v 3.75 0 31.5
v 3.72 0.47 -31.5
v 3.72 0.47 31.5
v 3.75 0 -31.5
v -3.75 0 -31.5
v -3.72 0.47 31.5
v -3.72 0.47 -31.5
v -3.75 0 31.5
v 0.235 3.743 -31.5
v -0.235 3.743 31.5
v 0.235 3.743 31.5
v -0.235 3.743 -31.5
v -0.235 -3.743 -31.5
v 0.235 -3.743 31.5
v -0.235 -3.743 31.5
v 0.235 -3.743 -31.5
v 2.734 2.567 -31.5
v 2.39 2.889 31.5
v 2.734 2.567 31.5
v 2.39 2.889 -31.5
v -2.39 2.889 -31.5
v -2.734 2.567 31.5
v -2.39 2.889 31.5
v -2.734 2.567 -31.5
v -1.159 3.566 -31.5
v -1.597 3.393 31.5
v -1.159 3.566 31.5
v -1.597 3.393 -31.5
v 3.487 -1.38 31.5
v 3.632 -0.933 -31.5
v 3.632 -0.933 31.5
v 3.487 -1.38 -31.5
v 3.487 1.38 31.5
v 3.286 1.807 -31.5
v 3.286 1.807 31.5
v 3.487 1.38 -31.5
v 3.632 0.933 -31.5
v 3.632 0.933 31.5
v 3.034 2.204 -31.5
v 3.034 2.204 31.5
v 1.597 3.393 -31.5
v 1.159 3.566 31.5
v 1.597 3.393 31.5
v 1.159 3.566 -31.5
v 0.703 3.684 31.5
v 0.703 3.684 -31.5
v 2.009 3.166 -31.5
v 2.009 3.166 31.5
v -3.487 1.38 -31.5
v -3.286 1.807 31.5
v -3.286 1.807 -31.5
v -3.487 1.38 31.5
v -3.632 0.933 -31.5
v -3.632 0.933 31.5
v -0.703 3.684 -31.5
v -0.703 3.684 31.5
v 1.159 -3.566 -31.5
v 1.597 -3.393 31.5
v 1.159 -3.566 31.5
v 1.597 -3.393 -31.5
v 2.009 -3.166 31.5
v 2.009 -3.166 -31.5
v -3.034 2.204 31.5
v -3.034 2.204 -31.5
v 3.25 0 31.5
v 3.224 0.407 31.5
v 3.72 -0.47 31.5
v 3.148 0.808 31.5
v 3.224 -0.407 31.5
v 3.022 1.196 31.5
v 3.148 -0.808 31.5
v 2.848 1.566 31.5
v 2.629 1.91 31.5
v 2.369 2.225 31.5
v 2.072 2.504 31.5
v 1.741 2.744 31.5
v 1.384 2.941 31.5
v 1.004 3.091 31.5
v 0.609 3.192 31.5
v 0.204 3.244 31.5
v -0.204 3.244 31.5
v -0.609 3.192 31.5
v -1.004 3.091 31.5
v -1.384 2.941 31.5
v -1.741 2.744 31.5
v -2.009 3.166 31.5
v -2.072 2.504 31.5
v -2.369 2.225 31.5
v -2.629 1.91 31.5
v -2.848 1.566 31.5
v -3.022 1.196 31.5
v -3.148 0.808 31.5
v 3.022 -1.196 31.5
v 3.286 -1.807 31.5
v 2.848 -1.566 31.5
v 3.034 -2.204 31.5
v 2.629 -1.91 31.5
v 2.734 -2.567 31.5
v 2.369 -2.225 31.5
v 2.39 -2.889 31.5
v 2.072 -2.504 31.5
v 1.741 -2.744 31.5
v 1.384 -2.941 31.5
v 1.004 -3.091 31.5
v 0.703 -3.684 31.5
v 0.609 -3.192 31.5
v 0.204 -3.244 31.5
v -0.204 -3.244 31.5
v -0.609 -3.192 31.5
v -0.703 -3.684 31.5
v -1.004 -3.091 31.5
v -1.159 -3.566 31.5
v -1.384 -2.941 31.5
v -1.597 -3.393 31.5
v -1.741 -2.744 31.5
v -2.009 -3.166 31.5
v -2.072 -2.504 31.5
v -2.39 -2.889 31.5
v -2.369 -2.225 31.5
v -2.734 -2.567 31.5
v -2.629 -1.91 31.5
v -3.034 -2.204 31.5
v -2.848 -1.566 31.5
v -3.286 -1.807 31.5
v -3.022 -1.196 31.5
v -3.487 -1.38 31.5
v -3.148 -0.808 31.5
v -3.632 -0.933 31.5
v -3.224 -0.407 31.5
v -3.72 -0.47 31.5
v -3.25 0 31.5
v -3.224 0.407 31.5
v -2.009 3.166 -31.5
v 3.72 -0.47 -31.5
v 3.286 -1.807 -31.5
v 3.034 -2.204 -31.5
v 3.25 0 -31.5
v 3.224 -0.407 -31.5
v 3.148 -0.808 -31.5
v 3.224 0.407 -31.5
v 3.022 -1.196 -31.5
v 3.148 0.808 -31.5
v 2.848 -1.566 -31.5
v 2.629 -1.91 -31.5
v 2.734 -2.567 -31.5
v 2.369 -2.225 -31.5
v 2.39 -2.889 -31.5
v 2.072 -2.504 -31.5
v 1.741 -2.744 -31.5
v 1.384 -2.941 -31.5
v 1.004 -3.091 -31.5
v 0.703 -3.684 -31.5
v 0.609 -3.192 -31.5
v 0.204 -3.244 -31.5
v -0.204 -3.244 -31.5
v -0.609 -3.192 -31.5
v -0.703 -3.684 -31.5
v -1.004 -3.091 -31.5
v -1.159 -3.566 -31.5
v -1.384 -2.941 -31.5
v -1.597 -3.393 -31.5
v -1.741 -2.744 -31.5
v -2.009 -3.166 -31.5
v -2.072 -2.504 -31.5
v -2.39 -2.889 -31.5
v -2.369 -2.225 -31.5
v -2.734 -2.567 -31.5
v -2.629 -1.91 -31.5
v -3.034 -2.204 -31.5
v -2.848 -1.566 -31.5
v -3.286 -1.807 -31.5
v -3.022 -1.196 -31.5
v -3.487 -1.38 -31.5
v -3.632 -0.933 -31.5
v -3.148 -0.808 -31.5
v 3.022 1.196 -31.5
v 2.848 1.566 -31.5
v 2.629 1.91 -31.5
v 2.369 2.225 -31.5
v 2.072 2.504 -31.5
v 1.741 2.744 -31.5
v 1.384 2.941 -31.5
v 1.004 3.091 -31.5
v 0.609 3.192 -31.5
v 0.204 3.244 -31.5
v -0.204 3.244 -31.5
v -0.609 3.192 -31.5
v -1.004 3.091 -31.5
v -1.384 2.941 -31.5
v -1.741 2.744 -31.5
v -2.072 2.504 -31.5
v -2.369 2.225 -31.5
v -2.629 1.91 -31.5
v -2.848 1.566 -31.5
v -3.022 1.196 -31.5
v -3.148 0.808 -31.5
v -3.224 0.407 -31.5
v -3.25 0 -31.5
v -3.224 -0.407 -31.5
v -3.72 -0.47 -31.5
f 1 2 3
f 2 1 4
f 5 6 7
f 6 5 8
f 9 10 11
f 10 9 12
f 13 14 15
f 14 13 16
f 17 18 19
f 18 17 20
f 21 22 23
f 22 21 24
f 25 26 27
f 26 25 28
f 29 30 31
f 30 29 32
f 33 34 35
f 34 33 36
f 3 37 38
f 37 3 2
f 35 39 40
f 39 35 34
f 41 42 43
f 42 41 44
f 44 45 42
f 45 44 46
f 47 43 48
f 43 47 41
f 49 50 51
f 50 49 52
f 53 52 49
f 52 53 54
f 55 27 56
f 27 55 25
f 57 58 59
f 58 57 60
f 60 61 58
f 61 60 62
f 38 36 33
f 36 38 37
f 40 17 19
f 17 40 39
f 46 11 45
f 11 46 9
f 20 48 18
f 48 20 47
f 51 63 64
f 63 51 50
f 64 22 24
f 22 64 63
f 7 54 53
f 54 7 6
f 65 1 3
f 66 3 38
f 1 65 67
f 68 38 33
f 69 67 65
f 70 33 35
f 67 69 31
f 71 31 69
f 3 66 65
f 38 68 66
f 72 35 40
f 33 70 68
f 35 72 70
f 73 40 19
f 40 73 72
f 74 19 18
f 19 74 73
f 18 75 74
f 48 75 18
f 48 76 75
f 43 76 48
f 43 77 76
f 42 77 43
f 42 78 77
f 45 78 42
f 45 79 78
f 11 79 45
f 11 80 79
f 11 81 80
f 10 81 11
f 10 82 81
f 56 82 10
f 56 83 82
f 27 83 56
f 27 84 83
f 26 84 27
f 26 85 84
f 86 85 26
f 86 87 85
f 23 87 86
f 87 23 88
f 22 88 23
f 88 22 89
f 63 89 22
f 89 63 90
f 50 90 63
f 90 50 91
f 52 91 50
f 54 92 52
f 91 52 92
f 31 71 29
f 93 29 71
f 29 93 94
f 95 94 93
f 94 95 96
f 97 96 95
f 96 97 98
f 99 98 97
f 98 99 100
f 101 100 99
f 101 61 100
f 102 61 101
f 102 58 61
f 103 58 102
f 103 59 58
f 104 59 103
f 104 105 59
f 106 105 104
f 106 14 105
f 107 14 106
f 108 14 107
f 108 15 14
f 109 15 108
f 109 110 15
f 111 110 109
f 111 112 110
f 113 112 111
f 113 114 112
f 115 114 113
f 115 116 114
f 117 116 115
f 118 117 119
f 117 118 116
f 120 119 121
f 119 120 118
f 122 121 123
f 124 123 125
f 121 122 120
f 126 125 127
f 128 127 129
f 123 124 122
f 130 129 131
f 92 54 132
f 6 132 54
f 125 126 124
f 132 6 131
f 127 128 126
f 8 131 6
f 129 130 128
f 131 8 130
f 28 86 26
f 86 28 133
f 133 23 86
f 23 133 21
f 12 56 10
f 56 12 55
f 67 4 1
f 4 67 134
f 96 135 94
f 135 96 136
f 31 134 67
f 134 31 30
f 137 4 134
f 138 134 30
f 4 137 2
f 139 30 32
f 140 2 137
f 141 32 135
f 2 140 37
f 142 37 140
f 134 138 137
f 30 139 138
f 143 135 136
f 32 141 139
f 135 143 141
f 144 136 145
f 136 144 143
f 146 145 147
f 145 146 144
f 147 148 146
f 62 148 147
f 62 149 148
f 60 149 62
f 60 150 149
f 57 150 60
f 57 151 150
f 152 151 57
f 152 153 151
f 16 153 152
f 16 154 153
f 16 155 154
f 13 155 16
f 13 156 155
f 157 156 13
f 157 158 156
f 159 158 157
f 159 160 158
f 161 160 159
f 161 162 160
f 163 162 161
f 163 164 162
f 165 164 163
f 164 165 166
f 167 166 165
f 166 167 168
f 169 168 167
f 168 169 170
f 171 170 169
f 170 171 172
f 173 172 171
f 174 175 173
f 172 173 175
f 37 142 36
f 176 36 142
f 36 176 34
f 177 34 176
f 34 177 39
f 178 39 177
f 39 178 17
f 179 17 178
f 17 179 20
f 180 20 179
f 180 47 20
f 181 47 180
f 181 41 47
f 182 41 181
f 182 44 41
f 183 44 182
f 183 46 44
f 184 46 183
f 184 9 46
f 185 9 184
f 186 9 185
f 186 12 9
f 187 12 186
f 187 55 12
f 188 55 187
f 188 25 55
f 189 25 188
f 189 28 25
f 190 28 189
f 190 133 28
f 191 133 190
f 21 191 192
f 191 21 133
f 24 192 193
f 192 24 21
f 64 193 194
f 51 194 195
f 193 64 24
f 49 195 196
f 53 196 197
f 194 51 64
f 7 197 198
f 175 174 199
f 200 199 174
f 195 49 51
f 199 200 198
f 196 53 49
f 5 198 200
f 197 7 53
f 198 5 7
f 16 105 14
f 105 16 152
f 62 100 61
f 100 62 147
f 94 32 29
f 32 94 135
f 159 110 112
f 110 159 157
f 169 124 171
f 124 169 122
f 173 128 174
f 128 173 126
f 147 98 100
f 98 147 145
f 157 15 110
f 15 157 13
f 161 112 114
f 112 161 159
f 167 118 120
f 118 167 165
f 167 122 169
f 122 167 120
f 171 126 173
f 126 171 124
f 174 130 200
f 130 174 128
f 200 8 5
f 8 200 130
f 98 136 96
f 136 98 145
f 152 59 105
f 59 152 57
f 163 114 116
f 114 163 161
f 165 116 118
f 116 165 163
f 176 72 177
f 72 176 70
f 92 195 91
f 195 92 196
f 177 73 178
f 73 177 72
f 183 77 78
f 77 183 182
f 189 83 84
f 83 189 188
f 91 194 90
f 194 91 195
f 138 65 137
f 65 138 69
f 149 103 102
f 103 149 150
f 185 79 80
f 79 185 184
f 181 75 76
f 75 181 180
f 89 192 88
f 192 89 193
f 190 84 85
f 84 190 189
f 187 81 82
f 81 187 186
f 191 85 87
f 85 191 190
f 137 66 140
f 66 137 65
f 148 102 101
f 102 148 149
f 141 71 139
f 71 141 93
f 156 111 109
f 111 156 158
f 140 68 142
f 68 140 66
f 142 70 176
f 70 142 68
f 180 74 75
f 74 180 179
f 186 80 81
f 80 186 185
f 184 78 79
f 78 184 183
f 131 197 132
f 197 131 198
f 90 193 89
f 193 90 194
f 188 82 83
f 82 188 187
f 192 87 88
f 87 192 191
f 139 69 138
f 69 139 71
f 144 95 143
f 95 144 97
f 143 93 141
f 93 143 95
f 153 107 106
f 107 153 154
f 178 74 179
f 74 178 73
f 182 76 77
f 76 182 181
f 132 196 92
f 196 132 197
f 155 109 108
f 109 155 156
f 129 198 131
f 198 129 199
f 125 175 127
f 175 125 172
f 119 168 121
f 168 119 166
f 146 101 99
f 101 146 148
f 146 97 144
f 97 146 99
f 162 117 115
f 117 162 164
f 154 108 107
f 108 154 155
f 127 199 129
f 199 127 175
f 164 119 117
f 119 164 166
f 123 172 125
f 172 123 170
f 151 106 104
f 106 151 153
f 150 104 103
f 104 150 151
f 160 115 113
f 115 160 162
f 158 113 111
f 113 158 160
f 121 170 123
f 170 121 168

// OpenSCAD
$fn = 50;


difference() {
	union() {
		translate(v = [0, 0, -31.5000000000]) {
			cylinder(h = 63, r = 3.7500000000);
		}
	}
	union() {
		translate(v = [0, 0, -100.0000000000]) {
			cylinder(h = 200, r = 3.2500000000);
		}
	}
}
